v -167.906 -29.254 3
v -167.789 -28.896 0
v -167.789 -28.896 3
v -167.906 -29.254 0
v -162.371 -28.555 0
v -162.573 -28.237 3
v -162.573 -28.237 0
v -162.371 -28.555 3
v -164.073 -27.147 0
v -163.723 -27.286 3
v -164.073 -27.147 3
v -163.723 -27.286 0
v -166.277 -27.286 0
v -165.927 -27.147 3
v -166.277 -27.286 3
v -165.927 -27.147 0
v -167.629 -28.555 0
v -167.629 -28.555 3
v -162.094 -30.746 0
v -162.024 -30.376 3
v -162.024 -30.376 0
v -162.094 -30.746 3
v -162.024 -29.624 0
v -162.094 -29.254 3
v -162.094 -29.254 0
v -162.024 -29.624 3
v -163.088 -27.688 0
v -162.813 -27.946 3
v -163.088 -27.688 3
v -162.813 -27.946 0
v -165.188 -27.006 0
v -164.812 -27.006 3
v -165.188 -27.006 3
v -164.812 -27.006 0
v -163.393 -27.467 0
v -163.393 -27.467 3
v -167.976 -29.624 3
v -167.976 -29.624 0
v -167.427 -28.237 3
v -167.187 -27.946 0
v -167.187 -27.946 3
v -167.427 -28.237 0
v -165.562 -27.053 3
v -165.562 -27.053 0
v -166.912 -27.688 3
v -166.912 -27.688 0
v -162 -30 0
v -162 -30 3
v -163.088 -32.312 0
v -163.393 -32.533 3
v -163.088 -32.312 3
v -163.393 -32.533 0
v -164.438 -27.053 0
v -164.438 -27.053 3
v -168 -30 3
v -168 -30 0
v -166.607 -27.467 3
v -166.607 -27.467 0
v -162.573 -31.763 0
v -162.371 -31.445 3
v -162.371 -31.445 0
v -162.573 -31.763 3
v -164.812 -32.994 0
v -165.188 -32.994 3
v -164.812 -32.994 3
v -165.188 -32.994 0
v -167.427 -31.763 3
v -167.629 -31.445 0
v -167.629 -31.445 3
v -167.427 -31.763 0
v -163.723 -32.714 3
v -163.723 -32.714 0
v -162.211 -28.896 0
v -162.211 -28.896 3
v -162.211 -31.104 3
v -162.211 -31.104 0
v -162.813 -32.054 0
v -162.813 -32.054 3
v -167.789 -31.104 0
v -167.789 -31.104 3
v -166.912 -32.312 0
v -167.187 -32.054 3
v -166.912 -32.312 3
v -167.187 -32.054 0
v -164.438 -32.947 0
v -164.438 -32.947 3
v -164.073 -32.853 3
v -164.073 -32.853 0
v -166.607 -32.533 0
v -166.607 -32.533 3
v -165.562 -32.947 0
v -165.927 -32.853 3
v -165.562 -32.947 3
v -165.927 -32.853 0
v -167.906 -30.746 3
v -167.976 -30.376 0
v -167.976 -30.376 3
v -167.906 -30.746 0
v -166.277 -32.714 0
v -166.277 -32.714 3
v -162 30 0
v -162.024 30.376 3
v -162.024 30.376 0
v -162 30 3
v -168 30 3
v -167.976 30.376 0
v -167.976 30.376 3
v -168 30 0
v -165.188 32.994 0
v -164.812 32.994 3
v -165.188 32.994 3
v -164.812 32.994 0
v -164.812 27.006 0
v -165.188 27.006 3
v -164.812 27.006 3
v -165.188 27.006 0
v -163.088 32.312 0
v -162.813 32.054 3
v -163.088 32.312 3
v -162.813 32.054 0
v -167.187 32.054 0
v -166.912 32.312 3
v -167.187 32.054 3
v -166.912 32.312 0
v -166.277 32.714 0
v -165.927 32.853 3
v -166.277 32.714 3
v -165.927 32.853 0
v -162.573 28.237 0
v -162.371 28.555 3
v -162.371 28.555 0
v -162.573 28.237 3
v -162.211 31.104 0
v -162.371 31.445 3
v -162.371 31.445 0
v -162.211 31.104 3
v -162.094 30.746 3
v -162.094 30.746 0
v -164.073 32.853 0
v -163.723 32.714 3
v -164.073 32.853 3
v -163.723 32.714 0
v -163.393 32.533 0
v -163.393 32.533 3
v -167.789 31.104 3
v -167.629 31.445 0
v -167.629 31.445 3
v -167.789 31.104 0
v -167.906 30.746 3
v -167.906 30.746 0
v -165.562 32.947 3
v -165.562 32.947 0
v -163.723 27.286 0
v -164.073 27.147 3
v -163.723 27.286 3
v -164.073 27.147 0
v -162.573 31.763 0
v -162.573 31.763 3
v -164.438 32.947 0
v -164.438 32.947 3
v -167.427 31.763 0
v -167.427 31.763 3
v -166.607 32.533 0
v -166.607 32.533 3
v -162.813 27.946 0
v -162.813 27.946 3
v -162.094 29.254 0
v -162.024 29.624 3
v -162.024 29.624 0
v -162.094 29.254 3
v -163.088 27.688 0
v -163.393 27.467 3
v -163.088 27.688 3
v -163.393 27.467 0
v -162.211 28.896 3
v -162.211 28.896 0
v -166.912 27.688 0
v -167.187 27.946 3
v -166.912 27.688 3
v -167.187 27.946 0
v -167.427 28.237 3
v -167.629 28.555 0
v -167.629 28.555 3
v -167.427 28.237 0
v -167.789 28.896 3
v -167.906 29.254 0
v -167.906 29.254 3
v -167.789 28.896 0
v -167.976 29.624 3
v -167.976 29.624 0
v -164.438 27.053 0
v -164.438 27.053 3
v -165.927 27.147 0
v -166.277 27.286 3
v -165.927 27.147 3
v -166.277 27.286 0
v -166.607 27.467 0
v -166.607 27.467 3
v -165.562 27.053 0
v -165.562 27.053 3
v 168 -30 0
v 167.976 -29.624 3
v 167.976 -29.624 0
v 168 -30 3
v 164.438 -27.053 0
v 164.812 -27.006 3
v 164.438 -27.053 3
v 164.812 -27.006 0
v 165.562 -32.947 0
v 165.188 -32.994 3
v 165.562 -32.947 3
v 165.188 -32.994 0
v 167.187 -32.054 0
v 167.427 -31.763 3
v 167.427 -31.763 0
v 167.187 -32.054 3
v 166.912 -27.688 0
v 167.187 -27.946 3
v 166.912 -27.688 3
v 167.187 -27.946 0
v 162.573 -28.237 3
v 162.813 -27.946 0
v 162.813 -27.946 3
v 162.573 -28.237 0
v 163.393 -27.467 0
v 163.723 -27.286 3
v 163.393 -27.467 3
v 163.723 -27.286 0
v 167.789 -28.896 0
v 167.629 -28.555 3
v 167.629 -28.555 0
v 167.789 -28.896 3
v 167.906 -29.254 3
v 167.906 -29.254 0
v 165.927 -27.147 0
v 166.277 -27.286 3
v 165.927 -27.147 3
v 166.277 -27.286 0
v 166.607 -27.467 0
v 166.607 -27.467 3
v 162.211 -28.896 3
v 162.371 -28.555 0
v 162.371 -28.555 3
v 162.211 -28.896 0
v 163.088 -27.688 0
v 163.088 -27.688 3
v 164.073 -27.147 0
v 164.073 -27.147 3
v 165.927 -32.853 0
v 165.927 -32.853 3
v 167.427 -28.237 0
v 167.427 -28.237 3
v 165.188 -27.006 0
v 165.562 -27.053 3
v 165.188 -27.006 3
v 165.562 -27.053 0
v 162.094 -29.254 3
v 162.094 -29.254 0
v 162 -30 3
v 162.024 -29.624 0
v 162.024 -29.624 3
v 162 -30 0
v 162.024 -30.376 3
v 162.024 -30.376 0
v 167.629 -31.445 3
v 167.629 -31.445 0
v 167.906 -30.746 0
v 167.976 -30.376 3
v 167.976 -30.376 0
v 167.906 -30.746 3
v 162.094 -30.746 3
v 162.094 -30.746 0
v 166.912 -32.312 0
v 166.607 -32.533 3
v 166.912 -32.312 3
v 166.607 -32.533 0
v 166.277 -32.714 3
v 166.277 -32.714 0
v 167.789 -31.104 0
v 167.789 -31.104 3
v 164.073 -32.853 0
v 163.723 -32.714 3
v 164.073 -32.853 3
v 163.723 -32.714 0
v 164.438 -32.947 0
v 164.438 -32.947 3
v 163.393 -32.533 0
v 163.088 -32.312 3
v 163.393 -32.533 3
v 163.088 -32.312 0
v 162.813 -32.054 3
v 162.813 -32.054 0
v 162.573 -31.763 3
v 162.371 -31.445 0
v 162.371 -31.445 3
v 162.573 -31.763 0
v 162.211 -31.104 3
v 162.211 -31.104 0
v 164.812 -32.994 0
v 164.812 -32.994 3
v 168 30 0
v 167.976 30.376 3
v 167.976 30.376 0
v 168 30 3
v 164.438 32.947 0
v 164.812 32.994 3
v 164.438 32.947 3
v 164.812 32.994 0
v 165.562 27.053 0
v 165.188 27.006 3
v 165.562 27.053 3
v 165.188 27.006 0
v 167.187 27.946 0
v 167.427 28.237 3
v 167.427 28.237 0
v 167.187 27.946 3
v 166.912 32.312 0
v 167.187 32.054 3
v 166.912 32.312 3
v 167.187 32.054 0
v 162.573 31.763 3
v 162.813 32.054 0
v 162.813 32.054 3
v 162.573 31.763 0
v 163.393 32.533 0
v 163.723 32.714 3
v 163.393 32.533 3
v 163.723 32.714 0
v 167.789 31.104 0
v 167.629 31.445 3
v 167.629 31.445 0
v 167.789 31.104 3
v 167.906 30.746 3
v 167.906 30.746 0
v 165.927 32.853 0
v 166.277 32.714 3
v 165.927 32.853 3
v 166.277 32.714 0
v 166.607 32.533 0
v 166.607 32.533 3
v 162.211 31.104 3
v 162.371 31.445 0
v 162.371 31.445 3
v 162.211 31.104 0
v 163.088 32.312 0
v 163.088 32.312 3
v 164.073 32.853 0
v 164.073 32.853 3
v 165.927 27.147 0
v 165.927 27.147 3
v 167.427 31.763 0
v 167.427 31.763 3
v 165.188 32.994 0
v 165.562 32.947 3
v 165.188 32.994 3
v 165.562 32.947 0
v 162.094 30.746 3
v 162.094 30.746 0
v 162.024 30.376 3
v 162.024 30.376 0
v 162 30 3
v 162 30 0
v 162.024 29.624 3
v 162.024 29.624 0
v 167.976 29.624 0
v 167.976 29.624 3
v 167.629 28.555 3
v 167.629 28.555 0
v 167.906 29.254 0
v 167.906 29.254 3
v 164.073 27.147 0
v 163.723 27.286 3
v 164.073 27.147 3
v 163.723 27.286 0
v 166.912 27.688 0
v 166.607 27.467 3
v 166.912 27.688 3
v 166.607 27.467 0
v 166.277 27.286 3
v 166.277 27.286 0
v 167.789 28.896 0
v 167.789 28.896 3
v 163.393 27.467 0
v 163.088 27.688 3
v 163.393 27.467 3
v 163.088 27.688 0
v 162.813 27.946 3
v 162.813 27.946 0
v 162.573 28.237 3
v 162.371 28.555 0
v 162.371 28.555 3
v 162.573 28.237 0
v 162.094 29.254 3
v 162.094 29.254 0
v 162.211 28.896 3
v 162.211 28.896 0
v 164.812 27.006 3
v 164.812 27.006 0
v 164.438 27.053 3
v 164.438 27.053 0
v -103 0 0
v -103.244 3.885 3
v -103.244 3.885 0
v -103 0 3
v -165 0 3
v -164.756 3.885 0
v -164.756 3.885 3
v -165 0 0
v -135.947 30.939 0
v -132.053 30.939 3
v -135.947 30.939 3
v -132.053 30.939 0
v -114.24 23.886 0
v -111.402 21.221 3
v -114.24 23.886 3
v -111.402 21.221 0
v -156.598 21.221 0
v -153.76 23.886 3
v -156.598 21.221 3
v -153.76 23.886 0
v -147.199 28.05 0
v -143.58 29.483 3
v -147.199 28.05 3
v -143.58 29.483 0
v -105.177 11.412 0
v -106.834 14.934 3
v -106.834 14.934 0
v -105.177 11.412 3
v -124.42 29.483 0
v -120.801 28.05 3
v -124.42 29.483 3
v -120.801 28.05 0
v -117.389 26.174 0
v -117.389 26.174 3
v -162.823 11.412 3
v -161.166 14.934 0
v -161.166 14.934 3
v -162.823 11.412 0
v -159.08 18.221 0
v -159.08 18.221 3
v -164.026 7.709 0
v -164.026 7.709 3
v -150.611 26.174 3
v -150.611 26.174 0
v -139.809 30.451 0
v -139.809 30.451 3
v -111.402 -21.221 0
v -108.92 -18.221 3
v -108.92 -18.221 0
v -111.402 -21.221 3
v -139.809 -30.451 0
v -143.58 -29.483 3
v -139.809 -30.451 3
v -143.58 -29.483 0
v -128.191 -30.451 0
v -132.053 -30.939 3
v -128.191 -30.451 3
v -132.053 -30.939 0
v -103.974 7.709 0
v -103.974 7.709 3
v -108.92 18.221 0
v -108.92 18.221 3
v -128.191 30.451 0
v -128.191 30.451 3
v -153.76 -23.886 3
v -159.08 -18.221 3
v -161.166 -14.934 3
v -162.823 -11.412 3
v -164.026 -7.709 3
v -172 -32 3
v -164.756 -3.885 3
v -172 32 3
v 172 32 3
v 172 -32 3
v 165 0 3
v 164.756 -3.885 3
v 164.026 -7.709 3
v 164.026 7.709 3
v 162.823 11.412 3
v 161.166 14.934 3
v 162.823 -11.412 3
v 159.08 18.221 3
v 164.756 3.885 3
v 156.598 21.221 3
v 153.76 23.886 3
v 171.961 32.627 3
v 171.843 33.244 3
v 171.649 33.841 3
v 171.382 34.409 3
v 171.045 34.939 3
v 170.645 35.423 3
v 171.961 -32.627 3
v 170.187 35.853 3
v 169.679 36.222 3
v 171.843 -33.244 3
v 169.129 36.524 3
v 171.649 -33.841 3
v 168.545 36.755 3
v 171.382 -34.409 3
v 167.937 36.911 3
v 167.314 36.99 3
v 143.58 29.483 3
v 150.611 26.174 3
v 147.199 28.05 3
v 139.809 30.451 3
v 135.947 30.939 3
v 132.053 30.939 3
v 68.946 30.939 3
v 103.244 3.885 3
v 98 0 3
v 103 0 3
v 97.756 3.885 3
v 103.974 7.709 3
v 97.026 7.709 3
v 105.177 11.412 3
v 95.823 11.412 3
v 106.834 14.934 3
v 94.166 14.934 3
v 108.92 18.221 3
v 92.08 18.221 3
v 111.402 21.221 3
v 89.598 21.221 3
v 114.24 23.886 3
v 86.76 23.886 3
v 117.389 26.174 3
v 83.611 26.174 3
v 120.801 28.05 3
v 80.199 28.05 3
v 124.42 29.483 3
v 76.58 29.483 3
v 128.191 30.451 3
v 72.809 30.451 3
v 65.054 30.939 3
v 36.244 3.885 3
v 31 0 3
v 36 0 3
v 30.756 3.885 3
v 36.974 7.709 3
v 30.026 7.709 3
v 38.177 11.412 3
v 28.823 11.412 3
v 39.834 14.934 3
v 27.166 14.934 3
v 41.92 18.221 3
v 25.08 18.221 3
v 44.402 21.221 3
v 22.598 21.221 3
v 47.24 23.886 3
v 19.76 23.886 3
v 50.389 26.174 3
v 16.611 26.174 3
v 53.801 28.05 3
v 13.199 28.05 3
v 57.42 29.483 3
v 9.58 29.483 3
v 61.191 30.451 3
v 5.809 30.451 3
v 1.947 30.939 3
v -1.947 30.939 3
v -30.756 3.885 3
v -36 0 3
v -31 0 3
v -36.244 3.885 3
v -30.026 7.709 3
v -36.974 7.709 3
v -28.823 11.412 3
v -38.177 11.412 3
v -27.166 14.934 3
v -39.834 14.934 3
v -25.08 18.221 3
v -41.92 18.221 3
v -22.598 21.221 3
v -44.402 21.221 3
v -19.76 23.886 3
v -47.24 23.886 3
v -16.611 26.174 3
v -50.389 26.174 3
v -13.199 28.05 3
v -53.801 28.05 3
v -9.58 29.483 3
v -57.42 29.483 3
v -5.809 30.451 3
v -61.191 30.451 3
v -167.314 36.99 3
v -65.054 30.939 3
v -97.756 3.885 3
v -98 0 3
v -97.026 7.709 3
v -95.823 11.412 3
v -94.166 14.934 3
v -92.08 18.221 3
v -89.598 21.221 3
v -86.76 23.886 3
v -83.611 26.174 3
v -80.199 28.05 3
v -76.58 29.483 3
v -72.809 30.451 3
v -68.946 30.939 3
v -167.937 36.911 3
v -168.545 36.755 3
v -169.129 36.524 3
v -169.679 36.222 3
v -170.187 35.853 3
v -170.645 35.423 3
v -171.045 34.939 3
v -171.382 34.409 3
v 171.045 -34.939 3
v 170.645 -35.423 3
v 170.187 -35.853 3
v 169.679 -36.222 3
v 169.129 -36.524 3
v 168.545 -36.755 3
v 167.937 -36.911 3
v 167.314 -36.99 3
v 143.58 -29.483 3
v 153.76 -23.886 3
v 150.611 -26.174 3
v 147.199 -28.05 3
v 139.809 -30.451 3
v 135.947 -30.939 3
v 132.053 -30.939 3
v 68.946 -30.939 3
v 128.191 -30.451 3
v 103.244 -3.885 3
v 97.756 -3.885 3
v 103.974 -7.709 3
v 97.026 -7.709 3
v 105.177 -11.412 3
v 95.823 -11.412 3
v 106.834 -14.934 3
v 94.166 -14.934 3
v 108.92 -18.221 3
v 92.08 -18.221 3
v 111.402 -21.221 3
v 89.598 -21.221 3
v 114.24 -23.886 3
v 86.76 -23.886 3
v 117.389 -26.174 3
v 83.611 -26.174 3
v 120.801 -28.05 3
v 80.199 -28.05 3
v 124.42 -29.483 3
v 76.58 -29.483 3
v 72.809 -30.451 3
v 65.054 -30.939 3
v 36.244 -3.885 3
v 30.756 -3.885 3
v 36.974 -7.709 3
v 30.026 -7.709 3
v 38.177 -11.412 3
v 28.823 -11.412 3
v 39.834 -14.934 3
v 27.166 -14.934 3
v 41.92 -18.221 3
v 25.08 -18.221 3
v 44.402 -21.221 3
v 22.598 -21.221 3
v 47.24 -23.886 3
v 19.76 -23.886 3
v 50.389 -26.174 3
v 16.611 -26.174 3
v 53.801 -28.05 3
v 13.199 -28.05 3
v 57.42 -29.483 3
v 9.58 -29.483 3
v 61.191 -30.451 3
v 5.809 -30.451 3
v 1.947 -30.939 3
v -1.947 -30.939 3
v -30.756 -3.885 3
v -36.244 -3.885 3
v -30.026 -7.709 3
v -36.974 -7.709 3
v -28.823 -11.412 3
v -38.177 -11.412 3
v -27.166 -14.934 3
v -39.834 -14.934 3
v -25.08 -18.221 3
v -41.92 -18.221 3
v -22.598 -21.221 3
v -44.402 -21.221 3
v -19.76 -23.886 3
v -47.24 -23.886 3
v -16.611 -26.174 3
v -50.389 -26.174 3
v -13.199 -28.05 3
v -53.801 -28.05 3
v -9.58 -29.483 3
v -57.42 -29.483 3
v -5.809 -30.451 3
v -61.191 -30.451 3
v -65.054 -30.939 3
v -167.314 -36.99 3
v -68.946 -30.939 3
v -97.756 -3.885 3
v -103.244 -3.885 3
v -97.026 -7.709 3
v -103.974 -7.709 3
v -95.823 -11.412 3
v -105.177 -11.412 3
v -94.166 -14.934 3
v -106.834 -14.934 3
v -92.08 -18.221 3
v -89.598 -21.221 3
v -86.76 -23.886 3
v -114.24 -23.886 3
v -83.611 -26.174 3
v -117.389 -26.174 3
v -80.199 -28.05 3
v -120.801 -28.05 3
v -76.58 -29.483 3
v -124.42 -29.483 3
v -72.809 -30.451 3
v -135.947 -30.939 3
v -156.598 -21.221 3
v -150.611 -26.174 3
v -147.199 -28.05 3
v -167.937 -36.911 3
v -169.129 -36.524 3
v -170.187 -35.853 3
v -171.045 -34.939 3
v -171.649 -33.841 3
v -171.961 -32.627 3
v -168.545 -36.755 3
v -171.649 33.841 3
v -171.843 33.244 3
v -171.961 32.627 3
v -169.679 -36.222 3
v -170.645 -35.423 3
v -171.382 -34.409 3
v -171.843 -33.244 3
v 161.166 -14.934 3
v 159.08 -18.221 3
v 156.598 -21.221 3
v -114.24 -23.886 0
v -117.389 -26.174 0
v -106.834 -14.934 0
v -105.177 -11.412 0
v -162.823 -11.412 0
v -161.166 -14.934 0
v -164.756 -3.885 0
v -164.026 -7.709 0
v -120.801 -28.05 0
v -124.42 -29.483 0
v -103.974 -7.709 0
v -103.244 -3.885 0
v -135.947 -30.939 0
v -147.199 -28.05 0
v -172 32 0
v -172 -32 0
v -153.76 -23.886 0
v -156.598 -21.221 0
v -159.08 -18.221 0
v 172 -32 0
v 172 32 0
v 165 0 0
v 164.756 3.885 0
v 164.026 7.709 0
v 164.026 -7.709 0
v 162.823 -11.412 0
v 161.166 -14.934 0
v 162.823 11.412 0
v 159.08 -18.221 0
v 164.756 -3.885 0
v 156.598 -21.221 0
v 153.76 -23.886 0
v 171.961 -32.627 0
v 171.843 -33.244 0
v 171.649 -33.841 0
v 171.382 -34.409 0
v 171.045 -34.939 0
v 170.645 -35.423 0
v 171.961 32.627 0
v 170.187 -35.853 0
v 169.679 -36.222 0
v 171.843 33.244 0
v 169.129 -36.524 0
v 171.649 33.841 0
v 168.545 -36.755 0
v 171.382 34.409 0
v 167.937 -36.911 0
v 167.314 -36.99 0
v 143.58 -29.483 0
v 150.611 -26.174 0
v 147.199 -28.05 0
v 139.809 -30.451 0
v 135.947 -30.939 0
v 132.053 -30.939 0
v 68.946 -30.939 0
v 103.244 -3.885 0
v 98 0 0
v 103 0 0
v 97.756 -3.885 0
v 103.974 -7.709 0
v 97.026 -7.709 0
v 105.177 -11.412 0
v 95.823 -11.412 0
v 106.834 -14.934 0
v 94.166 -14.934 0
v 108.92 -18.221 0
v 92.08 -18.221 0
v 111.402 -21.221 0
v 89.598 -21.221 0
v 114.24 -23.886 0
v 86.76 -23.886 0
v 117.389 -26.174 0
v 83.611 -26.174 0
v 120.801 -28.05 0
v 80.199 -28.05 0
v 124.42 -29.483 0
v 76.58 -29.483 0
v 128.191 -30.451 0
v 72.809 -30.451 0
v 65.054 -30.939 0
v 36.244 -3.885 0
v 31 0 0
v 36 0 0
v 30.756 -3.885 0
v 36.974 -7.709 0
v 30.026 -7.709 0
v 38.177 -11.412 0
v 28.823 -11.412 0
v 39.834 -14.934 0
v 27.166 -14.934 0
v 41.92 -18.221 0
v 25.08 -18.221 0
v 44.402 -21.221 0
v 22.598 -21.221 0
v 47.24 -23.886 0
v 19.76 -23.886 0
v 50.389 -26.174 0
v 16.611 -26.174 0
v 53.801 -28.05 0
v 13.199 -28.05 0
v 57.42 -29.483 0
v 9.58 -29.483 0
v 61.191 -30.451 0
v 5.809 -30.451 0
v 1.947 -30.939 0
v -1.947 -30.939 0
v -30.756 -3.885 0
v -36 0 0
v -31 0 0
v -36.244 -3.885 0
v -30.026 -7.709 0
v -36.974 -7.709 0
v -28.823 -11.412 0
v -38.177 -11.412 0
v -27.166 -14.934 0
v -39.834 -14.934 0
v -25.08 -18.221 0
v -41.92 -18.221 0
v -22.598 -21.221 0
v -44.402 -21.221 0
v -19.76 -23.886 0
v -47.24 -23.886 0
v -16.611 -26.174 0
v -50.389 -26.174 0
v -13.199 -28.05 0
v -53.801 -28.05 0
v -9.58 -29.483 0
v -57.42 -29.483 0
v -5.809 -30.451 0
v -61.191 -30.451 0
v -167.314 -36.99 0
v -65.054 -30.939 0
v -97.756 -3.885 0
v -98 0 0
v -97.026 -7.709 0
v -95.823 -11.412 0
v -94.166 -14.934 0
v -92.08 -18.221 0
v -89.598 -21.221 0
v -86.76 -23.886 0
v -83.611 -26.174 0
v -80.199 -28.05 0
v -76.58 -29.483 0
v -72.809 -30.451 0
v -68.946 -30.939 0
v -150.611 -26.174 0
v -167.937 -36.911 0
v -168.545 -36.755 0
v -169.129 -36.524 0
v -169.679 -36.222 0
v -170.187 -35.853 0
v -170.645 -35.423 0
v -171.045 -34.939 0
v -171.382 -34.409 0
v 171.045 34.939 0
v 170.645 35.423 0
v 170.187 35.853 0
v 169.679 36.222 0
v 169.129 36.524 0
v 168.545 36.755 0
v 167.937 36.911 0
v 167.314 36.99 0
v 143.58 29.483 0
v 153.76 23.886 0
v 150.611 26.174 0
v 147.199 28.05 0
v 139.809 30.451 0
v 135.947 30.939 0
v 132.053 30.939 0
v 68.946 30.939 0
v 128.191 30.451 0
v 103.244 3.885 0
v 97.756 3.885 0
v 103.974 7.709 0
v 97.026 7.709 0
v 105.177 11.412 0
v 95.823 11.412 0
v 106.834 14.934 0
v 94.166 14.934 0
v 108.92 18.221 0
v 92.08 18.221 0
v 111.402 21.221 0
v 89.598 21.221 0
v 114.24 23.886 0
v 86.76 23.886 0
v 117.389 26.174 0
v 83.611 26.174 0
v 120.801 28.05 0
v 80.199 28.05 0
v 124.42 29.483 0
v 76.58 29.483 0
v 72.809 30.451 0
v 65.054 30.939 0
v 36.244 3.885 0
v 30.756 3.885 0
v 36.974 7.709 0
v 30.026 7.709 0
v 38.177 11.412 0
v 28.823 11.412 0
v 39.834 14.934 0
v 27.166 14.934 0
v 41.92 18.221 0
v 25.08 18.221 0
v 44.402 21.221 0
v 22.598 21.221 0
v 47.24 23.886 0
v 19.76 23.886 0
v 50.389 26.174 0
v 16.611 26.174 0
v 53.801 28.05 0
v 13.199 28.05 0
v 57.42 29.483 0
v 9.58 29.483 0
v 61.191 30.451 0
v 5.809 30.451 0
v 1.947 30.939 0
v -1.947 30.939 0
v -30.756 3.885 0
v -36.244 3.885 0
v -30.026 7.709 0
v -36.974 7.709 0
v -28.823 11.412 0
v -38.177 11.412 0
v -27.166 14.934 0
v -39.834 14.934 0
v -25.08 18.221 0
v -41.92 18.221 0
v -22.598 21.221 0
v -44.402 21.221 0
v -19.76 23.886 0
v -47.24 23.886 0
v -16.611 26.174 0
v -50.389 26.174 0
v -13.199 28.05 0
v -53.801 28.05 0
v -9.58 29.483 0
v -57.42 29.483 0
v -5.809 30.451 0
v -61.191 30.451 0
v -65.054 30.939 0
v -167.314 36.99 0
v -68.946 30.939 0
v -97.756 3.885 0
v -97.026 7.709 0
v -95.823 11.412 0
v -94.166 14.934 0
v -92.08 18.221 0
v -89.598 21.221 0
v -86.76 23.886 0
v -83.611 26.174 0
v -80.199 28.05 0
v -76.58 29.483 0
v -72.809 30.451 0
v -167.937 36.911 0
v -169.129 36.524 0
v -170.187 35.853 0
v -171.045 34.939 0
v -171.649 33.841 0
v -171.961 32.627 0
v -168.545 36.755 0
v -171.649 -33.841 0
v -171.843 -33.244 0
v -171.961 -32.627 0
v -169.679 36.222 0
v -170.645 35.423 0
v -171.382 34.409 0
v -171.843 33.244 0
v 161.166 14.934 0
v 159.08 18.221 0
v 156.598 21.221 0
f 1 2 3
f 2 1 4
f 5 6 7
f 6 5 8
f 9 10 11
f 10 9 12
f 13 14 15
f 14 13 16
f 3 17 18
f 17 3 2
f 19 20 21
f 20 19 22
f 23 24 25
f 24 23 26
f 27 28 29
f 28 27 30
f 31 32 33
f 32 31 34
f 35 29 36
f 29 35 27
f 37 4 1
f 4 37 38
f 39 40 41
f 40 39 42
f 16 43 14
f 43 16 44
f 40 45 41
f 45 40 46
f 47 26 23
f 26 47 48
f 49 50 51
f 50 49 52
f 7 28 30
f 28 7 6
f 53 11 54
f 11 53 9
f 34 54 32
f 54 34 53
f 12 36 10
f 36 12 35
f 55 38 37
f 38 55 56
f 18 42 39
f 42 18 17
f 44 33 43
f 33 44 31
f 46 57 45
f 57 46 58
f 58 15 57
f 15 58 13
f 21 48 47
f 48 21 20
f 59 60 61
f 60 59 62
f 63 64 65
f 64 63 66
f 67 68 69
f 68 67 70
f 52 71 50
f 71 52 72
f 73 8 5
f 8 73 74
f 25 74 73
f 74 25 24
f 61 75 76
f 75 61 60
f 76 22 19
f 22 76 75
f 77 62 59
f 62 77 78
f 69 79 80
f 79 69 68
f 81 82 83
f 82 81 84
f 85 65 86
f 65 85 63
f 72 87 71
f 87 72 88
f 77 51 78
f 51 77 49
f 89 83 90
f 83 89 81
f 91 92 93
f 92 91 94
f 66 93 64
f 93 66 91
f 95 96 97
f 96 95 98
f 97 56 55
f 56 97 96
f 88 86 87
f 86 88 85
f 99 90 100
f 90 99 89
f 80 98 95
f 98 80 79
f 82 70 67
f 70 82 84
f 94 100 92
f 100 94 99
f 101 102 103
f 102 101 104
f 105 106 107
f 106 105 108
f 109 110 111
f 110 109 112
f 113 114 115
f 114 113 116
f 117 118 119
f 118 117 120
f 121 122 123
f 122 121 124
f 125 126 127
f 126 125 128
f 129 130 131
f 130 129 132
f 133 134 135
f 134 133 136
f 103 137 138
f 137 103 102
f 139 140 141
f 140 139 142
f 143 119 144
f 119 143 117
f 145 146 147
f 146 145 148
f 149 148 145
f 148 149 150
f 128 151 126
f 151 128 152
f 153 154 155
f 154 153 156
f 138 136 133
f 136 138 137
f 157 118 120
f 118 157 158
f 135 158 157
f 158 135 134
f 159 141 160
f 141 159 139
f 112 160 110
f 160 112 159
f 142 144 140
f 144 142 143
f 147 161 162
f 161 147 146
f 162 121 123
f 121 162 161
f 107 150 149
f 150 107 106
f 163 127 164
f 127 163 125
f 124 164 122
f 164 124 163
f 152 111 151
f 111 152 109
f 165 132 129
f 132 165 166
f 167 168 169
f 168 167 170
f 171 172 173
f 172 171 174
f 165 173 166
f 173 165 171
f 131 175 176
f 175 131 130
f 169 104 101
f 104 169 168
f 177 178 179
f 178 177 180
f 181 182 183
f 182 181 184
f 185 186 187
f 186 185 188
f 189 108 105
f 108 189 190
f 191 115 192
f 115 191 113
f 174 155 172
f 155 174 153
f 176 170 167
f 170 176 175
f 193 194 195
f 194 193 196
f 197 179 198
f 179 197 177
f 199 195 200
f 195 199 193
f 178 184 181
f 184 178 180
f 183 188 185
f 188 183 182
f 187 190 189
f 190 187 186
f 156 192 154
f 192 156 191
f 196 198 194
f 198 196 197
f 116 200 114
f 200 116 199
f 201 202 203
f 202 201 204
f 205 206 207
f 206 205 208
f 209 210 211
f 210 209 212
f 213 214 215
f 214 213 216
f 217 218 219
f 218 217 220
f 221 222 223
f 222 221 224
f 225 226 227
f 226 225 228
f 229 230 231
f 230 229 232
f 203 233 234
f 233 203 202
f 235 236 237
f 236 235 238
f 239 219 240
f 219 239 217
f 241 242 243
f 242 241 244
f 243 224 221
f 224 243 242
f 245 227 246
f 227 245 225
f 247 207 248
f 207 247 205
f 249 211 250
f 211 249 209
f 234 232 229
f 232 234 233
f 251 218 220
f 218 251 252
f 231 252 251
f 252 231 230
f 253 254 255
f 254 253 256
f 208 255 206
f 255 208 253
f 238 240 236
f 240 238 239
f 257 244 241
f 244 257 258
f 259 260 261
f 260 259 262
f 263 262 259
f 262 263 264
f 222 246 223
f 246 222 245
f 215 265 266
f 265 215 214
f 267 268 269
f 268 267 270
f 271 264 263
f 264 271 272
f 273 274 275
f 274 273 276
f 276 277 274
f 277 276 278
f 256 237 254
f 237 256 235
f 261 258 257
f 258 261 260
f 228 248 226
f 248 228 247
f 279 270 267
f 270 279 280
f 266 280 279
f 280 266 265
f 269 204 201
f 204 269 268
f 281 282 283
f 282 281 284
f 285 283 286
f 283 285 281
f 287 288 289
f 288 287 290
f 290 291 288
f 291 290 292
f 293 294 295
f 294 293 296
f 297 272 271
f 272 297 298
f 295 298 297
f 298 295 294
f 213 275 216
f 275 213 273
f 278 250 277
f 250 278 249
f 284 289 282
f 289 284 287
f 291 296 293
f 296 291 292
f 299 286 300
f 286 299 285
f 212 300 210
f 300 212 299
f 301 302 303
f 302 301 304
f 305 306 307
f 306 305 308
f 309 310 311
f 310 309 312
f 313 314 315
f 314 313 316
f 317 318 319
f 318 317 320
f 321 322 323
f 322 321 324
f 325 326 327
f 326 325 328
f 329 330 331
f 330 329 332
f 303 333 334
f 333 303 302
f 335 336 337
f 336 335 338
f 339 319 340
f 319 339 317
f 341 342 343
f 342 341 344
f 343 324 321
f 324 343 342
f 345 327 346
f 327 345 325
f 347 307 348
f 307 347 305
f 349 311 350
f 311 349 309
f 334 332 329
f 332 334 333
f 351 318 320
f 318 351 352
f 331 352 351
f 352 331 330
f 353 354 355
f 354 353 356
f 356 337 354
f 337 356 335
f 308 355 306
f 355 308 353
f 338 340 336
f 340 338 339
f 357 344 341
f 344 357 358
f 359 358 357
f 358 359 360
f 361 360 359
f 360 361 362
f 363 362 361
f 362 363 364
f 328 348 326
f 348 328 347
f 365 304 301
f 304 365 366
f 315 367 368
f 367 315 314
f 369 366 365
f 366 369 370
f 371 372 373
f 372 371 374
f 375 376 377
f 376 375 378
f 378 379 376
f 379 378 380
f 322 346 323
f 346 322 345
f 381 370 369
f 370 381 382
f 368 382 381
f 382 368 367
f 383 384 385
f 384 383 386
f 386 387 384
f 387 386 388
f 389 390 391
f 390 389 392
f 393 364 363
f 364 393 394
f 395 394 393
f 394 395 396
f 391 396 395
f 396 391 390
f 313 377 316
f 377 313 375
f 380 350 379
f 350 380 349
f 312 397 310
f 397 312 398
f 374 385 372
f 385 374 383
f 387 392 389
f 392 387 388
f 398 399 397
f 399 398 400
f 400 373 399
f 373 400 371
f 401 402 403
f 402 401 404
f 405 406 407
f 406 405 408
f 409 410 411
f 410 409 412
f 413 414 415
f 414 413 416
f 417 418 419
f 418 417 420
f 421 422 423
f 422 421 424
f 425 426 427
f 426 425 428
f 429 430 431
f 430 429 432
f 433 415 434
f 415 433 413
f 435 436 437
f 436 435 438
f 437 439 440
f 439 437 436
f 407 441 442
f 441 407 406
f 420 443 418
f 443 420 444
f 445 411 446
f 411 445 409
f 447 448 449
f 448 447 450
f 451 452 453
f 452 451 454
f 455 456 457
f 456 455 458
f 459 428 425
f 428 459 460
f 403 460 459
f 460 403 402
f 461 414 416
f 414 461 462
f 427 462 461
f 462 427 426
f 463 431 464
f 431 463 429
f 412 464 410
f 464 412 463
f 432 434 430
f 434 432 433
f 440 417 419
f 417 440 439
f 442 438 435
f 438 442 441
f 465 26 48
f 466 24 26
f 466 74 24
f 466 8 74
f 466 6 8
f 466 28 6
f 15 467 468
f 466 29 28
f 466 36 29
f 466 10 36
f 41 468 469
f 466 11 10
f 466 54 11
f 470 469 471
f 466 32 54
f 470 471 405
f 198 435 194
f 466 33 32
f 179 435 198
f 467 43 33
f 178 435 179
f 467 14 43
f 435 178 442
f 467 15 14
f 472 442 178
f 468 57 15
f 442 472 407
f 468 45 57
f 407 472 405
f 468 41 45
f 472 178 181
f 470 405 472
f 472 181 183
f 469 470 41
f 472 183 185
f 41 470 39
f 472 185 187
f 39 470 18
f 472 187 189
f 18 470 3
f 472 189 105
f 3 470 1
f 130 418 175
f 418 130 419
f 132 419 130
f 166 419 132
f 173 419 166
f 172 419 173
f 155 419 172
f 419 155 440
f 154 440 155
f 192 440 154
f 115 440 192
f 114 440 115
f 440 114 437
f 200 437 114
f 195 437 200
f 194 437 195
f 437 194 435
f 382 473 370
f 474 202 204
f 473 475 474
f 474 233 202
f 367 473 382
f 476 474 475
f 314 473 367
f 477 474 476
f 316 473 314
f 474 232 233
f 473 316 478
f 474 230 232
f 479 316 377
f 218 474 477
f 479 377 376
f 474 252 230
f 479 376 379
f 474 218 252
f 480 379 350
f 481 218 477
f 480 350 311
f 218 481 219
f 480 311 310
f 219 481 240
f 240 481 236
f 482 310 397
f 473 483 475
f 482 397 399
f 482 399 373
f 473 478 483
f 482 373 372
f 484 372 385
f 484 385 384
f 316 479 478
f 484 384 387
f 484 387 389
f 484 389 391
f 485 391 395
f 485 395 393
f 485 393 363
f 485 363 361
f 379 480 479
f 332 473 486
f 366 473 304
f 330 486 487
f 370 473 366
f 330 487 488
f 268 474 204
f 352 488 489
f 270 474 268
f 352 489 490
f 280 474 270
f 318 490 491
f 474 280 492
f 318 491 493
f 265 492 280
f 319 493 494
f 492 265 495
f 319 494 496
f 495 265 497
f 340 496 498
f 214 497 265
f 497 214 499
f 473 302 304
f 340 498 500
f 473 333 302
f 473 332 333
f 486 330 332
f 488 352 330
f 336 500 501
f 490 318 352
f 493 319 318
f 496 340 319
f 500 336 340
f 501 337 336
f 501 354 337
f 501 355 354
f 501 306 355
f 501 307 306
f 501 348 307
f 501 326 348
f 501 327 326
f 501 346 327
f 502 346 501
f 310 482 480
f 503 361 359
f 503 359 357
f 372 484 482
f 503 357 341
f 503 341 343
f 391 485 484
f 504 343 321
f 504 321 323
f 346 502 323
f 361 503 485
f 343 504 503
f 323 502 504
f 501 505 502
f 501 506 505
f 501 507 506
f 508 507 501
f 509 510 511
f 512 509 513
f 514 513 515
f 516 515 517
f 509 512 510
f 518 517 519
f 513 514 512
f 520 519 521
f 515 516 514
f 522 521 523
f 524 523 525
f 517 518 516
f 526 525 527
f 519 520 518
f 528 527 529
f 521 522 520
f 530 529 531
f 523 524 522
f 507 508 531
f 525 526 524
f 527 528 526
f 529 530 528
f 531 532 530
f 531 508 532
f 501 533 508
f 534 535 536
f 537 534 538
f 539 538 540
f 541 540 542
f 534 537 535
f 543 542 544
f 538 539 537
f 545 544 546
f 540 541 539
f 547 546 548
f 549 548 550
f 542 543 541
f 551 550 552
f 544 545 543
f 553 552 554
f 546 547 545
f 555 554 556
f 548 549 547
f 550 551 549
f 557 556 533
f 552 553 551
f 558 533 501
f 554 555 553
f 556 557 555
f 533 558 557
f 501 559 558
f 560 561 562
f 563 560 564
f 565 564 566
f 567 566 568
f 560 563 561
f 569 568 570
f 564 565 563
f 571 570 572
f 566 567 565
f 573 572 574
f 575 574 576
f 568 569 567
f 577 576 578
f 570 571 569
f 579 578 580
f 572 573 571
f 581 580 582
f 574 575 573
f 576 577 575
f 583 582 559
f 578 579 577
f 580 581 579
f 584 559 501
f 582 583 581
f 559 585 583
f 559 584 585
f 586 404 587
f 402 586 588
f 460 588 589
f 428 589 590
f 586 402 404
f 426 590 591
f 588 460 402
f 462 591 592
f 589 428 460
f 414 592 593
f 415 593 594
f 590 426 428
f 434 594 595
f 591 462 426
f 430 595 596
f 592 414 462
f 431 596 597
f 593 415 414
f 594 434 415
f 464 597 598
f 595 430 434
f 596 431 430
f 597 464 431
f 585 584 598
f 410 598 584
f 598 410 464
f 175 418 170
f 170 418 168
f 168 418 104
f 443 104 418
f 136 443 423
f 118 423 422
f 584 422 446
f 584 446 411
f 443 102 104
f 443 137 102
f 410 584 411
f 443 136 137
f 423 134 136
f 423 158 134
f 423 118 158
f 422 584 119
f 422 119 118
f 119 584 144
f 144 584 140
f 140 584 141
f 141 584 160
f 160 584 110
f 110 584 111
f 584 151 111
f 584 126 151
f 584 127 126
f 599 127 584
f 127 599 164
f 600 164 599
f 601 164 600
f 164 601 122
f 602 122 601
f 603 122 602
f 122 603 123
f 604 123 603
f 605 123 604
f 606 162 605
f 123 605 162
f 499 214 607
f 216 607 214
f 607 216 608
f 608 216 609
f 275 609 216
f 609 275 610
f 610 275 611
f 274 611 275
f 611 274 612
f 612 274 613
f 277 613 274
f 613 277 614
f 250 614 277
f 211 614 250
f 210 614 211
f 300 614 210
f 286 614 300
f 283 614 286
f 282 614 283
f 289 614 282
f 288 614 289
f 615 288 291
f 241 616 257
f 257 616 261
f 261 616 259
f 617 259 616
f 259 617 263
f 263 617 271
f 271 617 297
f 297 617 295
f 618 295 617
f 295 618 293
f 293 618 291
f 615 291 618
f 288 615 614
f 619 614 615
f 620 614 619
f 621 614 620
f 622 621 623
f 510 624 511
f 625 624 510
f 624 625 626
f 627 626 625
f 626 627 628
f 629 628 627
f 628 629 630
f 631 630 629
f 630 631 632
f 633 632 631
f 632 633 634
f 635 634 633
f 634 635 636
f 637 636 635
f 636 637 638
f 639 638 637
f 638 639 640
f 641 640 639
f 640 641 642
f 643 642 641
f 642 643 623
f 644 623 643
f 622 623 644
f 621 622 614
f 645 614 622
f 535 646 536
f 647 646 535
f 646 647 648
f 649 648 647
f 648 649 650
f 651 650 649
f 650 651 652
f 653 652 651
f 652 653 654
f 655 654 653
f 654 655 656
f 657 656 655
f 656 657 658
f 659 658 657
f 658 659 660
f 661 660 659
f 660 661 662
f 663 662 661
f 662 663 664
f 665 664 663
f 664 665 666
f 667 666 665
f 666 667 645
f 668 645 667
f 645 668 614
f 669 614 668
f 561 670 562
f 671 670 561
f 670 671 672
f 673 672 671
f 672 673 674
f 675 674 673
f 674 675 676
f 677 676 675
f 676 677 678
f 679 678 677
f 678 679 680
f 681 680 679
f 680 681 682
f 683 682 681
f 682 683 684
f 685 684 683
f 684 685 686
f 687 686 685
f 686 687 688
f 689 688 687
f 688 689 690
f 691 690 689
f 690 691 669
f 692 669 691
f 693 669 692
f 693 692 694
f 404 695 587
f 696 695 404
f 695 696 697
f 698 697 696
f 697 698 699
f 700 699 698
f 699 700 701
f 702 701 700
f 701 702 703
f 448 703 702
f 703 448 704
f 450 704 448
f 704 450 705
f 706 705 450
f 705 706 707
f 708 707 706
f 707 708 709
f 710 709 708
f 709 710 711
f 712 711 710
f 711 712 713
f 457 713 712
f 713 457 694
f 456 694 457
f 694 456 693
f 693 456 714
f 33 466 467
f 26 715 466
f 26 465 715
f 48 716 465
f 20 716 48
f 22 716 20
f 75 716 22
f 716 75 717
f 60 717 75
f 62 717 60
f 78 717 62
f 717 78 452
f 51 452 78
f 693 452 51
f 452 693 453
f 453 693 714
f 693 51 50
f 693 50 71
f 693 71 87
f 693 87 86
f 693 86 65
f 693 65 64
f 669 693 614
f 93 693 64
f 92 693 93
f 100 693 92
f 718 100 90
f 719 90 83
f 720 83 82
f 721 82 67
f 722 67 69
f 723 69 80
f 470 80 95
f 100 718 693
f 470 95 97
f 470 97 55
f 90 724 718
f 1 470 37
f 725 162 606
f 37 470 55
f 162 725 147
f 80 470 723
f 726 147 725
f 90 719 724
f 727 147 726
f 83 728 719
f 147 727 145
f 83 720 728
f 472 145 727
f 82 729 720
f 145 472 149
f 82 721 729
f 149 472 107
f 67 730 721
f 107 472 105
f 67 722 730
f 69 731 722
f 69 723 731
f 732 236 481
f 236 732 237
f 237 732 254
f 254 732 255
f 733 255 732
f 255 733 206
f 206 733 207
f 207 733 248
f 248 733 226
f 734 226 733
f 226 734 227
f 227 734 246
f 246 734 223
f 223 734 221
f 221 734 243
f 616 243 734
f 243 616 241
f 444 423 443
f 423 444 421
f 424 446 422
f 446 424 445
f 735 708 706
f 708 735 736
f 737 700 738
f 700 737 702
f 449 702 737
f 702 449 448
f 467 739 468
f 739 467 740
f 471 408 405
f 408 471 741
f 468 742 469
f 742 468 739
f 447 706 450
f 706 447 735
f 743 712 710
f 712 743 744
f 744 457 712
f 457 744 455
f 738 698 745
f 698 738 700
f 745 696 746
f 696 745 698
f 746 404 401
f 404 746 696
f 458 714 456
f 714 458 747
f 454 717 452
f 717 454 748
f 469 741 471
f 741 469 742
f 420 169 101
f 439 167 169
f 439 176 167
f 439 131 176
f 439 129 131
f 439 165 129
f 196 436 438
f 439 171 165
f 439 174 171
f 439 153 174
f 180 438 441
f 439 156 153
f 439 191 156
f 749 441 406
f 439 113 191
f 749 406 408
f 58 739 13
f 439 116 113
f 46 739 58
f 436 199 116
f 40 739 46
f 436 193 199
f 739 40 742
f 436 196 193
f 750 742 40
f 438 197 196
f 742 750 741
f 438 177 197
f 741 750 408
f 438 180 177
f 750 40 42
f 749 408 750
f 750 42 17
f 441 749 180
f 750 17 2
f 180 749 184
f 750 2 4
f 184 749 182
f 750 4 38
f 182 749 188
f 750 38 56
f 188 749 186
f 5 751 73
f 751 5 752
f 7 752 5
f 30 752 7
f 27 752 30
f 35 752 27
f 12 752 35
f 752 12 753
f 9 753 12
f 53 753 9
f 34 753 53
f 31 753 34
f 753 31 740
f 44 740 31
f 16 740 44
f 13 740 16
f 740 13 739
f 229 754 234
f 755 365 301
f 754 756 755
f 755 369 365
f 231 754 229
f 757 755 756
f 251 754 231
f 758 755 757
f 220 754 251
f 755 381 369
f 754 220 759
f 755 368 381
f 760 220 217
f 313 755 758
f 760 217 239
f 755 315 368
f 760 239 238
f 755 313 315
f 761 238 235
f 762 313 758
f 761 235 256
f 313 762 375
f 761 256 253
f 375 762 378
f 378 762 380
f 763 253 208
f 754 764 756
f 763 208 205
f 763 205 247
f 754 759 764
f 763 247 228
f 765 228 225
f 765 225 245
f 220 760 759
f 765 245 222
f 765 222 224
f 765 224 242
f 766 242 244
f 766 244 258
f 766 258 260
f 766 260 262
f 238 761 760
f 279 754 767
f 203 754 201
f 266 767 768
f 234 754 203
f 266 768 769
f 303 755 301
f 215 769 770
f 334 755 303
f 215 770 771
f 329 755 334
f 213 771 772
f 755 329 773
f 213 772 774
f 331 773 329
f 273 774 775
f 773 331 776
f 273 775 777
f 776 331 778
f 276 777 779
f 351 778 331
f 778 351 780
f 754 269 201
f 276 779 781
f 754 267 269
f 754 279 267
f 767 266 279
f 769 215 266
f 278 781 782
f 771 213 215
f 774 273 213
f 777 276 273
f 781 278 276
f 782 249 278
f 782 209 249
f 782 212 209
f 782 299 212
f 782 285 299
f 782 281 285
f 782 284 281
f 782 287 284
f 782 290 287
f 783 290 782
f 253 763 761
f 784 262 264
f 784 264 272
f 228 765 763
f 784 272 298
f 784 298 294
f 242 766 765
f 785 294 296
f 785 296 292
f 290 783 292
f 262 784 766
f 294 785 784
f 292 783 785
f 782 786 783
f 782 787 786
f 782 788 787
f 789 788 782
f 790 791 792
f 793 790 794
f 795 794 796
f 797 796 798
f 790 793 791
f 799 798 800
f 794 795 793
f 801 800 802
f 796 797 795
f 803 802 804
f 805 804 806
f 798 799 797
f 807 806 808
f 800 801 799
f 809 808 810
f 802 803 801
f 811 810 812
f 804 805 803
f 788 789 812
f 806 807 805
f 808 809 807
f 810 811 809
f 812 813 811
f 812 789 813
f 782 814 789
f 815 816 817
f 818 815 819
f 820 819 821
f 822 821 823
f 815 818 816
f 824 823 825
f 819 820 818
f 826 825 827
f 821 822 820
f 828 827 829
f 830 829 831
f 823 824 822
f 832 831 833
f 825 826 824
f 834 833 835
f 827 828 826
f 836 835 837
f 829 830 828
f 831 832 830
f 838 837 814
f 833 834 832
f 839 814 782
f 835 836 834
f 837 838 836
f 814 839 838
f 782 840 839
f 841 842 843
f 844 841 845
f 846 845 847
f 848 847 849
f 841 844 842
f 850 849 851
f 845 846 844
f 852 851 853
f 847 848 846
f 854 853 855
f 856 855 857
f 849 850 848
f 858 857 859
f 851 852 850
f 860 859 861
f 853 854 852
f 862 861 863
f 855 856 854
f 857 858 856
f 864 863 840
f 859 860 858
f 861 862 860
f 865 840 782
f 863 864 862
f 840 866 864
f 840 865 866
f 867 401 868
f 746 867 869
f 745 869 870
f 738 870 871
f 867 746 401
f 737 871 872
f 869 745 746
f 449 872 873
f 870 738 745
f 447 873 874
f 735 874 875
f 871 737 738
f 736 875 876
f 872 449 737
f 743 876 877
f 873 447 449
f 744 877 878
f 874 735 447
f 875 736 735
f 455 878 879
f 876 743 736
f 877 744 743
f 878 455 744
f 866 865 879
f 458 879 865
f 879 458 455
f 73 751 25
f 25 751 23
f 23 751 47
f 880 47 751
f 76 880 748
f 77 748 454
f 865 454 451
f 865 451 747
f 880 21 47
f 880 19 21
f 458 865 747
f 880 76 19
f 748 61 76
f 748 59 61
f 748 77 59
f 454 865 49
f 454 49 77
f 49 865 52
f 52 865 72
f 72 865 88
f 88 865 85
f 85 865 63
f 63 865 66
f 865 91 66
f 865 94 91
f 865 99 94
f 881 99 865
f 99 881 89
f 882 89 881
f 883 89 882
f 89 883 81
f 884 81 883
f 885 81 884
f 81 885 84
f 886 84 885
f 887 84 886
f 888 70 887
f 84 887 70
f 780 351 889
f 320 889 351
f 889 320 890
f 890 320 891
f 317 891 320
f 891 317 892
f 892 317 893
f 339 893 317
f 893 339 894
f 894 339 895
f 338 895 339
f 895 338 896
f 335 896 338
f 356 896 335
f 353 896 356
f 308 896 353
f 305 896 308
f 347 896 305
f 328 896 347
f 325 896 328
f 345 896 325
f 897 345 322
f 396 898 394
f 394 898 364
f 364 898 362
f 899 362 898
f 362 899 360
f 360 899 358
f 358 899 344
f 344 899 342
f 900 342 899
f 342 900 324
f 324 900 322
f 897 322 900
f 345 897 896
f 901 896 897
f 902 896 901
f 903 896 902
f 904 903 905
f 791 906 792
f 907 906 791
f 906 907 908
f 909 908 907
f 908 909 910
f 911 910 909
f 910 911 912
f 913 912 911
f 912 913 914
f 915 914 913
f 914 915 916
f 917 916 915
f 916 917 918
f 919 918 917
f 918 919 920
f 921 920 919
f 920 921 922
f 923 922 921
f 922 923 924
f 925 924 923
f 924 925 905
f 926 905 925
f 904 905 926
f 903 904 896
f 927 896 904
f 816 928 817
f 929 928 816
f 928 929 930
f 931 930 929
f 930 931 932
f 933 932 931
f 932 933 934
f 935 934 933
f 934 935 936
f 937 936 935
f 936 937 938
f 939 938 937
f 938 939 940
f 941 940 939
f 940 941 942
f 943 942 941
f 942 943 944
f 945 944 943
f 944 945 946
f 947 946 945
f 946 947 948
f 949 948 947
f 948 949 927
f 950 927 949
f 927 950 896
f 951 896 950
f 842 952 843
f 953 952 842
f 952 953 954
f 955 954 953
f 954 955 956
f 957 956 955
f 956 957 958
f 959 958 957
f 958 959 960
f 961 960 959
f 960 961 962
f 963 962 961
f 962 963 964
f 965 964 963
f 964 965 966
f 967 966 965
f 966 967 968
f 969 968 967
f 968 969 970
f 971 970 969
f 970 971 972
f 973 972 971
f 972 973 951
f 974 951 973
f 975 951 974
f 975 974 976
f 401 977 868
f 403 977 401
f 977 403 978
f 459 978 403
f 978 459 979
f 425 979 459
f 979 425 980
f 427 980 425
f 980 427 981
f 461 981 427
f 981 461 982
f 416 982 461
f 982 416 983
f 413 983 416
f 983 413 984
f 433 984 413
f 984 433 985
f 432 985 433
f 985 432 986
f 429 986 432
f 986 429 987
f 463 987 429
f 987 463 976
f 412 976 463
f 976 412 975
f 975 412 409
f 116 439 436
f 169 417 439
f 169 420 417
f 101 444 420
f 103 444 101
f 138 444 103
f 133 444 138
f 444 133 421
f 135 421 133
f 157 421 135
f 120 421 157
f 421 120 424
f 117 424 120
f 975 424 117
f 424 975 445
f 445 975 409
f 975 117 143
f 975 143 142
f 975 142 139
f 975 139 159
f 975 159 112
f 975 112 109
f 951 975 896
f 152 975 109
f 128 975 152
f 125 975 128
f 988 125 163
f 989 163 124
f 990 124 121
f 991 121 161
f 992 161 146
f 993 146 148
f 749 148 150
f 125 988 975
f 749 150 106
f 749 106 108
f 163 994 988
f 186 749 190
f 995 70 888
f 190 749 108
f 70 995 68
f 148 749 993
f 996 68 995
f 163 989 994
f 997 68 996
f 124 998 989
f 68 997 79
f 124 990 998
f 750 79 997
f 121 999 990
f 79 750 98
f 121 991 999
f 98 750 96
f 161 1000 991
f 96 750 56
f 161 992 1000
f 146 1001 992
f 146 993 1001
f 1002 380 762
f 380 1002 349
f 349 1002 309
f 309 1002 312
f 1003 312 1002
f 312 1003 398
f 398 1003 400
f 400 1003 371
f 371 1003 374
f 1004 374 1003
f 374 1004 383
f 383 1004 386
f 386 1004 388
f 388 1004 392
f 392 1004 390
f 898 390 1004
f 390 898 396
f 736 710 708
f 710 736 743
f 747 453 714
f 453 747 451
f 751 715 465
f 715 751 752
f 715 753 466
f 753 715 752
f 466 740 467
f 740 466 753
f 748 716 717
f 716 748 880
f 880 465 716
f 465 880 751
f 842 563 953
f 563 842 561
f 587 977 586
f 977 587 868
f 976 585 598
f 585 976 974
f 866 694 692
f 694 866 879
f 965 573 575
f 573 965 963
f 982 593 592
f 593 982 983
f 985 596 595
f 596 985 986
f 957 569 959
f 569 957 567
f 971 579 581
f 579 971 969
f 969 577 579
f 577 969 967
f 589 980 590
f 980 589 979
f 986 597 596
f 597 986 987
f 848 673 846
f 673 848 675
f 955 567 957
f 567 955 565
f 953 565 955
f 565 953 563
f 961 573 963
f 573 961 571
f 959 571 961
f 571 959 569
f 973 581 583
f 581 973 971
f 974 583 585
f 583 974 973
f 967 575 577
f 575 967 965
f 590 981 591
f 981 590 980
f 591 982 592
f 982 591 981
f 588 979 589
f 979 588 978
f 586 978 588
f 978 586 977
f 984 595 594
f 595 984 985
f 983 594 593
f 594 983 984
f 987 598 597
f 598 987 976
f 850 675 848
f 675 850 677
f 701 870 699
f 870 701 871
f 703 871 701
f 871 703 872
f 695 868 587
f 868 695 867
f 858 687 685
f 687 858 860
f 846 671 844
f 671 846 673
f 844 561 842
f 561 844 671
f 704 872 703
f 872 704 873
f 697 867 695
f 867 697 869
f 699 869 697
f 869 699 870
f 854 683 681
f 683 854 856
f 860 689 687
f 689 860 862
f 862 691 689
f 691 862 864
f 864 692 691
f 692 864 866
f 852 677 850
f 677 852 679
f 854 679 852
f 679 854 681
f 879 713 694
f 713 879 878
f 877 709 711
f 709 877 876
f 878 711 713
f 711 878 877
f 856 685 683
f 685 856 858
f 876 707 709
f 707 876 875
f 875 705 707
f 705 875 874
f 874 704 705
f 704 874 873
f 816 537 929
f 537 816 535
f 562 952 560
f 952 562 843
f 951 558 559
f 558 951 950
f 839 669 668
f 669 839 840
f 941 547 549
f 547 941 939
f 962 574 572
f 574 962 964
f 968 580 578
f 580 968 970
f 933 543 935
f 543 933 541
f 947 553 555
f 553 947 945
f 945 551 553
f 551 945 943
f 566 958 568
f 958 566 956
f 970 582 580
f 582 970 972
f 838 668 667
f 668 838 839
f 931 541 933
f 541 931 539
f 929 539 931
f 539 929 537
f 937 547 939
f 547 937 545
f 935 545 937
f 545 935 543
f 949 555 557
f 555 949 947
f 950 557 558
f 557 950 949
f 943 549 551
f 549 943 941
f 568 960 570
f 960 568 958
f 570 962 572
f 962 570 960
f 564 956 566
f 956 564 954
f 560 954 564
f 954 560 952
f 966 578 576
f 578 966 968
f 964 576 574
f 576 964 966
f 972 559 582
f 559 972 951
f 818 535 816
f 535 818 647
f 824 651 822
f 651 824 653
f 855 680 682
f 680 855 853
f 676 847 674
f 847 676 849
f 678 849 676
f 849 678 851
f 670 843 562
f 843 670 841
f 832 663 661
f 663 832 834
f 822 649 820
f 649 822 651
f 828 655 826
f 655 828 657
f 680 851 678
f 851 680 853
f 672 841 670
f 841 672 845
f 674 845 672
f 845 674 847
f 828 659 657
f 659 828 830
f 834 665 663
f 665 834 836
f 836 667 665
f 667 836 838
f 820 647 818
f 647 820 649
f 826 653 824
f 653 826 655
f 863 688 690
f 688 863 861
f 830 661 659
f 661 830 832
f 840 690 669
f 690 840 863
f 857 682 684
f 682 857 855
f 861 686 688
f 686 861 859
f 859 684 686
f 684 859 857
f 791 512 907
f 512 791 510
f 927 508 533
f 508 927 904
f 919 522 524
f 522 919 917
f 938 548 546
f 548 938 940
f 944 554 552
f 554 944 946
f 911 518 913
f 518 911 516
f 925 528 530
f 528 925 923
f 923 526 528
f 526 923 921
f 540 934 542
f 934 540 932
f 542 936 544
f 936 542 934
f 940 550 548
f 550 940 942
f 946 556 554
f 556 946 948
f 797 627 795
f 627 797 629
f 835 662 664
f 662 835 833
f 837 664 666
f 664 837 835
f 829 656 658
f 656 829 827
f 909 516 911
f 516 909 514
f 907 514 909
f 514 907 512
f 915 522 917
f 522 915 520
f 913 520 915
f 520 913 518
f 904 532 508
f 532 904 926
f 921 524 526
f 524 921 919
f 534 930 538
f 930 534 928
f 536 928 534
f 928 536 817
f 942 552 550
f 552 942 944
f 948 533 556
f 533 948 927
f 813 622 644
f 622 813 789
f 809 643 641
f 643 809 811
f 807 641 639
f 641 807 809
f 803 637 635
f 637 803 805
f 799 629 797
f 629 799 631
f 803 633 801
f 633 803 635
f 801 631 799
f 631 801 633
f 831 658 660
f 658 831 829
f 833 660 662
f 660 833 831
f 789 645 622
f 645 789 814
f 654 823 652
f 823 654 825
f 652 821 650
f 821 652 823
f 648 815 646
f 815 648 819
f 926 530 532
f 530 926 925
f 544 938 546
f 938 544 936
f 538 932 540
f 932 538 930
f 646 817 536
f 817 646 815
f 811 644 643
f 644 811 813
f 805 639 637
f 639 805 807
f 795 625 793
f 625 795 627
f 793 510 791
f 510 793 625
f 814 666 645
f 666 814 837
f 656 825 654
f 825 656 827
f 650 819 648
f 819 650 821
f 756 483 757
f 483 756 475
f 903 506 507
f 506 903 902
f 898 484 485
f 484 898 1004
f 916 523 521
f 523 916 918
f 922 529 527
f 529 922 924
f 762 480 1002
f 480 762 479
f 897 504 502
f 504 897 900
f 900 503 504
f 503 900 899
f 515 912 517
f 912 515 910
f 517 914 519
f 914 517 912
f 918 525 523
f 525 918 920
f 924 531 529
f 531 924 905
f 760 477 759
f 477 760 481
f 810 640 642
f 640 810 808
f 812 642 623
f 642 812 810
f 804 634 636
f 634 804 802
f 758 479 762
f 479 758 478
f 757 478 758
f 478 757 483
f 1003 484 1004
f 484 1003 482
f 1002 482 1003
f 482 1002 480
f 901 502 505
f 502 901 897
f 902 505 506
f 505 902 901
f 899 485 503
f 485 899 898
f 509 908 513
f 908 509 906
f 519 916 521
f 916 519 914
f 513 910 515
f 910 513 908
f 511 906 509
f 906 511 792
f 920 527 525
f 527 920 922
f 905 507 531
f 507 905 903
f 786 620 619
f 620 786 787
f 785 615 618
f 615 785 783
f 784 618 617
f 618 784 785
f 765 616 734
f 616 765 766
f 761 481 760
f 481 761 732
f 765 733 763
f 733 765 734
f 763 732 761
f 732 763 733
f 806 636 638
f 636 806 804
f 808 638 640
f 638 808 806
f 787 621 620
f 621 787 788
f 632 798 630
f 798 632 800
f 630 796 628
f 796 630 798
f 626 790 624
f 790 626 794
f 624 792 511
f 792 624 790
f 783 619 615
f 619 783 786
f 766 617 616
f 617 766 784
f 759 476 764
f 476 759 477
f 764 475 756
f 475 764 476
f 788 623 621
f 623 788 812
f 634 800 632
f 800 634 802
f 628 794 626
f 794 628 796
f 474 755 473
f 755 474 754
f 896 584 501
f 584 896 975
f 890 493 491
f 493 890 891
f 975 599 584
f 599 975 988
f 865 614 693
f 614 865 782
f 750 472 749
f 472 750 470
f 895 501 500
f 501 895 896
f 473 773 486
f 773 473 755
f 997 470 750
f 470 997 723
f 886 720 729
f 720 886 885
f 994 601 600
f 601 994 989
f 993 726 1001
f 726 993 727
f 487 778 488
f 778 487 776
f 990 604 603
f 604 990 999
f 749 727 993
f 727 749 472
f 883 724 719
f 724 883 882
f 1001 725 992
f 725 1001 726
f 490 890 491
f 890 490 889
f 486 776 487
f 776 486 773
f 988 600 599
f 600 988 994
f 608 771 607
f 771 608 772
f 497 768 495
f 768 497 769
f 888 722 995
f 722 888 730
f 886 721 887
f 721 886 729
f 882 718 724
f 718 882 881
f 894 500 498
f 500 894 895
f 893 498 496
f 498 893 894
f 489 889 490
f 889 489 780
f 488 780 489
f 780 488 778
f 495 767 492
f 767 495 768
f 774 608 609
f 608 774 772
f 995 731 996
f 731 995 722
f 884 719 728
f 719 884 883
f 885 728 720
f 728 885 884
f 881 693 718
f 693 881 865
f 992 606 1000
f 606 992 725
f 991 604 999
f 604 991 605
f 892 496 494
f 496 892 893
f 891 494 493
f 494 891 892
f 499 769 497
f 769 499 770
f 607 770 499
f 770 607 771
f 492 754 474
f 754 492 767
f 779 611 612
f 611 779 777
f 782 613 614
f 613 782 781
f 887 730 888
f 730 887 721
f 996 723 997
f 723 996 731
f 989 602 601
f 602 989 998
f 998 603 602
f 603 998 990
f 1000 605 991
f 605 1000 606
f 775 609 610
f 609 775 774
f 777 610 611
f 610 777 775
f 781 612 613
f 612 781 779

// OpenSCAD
$fn = 50;


difference() {
	union() {
		hull() {
			translate(v = [-167.0000000000, 32.0000000000, 0]) {
				cylinder(h = 3, r = 5);
			}
			translate(v = [167.0000000000, 32.0000000000, 0]) {
				cylinder(h = 3, r = 5);
			}
			translate(v = [-167.0000000000, -32.0000000000, 0]) {
				cylinder(h = 3, r = 5);
			}
			translate(v = [167.0000000000, -32.0000000000, 0]) {
				cylinder(h = 3, r = 5);
			}
		}
	}
	union() {
		#translate(v = [-165.0000000000, -30.0000000000, -100.0000000000]) {
			cylinder(h = 200, r = 3.0000000000);
		}
		#translate(v = [-165.0000000000, 30.0000000000, -100.0000000000]) {
			cylinder(h = 200, r = 3.0000000000);
		}
		#translate(v = [165.0000000000, -30.0000000000, -100.0000000000]) {
			cylinder(h = 200, r = 3.0000000000);
		}
		#translate(v = [165.0000000000, 30.0000000000, -100.0000000000]) {
			cylinder(h = 200, r = 3.0000000000);
		}
		#translate(v = [-134.0000000000, 0, 0]) {
			cylinder(h = 3, r = 31.0000000000);
		}
		#translate(v = [-67.0000000000, 0, 0]) {
			cylinder(h = 3, r = 31.0000000000);
		}
		#cylinder(h = 3, r = 31.0000000000);
		#translate(v = [67.0000000000, 0, 0]) {
			cylinder(h = 3, r = 31.0000000000);
		}
		#translate(v = [134.0000000000, 0, 0]) {
			cylinder(h = 3, r = 31.0000000000);
		}
	}
}
